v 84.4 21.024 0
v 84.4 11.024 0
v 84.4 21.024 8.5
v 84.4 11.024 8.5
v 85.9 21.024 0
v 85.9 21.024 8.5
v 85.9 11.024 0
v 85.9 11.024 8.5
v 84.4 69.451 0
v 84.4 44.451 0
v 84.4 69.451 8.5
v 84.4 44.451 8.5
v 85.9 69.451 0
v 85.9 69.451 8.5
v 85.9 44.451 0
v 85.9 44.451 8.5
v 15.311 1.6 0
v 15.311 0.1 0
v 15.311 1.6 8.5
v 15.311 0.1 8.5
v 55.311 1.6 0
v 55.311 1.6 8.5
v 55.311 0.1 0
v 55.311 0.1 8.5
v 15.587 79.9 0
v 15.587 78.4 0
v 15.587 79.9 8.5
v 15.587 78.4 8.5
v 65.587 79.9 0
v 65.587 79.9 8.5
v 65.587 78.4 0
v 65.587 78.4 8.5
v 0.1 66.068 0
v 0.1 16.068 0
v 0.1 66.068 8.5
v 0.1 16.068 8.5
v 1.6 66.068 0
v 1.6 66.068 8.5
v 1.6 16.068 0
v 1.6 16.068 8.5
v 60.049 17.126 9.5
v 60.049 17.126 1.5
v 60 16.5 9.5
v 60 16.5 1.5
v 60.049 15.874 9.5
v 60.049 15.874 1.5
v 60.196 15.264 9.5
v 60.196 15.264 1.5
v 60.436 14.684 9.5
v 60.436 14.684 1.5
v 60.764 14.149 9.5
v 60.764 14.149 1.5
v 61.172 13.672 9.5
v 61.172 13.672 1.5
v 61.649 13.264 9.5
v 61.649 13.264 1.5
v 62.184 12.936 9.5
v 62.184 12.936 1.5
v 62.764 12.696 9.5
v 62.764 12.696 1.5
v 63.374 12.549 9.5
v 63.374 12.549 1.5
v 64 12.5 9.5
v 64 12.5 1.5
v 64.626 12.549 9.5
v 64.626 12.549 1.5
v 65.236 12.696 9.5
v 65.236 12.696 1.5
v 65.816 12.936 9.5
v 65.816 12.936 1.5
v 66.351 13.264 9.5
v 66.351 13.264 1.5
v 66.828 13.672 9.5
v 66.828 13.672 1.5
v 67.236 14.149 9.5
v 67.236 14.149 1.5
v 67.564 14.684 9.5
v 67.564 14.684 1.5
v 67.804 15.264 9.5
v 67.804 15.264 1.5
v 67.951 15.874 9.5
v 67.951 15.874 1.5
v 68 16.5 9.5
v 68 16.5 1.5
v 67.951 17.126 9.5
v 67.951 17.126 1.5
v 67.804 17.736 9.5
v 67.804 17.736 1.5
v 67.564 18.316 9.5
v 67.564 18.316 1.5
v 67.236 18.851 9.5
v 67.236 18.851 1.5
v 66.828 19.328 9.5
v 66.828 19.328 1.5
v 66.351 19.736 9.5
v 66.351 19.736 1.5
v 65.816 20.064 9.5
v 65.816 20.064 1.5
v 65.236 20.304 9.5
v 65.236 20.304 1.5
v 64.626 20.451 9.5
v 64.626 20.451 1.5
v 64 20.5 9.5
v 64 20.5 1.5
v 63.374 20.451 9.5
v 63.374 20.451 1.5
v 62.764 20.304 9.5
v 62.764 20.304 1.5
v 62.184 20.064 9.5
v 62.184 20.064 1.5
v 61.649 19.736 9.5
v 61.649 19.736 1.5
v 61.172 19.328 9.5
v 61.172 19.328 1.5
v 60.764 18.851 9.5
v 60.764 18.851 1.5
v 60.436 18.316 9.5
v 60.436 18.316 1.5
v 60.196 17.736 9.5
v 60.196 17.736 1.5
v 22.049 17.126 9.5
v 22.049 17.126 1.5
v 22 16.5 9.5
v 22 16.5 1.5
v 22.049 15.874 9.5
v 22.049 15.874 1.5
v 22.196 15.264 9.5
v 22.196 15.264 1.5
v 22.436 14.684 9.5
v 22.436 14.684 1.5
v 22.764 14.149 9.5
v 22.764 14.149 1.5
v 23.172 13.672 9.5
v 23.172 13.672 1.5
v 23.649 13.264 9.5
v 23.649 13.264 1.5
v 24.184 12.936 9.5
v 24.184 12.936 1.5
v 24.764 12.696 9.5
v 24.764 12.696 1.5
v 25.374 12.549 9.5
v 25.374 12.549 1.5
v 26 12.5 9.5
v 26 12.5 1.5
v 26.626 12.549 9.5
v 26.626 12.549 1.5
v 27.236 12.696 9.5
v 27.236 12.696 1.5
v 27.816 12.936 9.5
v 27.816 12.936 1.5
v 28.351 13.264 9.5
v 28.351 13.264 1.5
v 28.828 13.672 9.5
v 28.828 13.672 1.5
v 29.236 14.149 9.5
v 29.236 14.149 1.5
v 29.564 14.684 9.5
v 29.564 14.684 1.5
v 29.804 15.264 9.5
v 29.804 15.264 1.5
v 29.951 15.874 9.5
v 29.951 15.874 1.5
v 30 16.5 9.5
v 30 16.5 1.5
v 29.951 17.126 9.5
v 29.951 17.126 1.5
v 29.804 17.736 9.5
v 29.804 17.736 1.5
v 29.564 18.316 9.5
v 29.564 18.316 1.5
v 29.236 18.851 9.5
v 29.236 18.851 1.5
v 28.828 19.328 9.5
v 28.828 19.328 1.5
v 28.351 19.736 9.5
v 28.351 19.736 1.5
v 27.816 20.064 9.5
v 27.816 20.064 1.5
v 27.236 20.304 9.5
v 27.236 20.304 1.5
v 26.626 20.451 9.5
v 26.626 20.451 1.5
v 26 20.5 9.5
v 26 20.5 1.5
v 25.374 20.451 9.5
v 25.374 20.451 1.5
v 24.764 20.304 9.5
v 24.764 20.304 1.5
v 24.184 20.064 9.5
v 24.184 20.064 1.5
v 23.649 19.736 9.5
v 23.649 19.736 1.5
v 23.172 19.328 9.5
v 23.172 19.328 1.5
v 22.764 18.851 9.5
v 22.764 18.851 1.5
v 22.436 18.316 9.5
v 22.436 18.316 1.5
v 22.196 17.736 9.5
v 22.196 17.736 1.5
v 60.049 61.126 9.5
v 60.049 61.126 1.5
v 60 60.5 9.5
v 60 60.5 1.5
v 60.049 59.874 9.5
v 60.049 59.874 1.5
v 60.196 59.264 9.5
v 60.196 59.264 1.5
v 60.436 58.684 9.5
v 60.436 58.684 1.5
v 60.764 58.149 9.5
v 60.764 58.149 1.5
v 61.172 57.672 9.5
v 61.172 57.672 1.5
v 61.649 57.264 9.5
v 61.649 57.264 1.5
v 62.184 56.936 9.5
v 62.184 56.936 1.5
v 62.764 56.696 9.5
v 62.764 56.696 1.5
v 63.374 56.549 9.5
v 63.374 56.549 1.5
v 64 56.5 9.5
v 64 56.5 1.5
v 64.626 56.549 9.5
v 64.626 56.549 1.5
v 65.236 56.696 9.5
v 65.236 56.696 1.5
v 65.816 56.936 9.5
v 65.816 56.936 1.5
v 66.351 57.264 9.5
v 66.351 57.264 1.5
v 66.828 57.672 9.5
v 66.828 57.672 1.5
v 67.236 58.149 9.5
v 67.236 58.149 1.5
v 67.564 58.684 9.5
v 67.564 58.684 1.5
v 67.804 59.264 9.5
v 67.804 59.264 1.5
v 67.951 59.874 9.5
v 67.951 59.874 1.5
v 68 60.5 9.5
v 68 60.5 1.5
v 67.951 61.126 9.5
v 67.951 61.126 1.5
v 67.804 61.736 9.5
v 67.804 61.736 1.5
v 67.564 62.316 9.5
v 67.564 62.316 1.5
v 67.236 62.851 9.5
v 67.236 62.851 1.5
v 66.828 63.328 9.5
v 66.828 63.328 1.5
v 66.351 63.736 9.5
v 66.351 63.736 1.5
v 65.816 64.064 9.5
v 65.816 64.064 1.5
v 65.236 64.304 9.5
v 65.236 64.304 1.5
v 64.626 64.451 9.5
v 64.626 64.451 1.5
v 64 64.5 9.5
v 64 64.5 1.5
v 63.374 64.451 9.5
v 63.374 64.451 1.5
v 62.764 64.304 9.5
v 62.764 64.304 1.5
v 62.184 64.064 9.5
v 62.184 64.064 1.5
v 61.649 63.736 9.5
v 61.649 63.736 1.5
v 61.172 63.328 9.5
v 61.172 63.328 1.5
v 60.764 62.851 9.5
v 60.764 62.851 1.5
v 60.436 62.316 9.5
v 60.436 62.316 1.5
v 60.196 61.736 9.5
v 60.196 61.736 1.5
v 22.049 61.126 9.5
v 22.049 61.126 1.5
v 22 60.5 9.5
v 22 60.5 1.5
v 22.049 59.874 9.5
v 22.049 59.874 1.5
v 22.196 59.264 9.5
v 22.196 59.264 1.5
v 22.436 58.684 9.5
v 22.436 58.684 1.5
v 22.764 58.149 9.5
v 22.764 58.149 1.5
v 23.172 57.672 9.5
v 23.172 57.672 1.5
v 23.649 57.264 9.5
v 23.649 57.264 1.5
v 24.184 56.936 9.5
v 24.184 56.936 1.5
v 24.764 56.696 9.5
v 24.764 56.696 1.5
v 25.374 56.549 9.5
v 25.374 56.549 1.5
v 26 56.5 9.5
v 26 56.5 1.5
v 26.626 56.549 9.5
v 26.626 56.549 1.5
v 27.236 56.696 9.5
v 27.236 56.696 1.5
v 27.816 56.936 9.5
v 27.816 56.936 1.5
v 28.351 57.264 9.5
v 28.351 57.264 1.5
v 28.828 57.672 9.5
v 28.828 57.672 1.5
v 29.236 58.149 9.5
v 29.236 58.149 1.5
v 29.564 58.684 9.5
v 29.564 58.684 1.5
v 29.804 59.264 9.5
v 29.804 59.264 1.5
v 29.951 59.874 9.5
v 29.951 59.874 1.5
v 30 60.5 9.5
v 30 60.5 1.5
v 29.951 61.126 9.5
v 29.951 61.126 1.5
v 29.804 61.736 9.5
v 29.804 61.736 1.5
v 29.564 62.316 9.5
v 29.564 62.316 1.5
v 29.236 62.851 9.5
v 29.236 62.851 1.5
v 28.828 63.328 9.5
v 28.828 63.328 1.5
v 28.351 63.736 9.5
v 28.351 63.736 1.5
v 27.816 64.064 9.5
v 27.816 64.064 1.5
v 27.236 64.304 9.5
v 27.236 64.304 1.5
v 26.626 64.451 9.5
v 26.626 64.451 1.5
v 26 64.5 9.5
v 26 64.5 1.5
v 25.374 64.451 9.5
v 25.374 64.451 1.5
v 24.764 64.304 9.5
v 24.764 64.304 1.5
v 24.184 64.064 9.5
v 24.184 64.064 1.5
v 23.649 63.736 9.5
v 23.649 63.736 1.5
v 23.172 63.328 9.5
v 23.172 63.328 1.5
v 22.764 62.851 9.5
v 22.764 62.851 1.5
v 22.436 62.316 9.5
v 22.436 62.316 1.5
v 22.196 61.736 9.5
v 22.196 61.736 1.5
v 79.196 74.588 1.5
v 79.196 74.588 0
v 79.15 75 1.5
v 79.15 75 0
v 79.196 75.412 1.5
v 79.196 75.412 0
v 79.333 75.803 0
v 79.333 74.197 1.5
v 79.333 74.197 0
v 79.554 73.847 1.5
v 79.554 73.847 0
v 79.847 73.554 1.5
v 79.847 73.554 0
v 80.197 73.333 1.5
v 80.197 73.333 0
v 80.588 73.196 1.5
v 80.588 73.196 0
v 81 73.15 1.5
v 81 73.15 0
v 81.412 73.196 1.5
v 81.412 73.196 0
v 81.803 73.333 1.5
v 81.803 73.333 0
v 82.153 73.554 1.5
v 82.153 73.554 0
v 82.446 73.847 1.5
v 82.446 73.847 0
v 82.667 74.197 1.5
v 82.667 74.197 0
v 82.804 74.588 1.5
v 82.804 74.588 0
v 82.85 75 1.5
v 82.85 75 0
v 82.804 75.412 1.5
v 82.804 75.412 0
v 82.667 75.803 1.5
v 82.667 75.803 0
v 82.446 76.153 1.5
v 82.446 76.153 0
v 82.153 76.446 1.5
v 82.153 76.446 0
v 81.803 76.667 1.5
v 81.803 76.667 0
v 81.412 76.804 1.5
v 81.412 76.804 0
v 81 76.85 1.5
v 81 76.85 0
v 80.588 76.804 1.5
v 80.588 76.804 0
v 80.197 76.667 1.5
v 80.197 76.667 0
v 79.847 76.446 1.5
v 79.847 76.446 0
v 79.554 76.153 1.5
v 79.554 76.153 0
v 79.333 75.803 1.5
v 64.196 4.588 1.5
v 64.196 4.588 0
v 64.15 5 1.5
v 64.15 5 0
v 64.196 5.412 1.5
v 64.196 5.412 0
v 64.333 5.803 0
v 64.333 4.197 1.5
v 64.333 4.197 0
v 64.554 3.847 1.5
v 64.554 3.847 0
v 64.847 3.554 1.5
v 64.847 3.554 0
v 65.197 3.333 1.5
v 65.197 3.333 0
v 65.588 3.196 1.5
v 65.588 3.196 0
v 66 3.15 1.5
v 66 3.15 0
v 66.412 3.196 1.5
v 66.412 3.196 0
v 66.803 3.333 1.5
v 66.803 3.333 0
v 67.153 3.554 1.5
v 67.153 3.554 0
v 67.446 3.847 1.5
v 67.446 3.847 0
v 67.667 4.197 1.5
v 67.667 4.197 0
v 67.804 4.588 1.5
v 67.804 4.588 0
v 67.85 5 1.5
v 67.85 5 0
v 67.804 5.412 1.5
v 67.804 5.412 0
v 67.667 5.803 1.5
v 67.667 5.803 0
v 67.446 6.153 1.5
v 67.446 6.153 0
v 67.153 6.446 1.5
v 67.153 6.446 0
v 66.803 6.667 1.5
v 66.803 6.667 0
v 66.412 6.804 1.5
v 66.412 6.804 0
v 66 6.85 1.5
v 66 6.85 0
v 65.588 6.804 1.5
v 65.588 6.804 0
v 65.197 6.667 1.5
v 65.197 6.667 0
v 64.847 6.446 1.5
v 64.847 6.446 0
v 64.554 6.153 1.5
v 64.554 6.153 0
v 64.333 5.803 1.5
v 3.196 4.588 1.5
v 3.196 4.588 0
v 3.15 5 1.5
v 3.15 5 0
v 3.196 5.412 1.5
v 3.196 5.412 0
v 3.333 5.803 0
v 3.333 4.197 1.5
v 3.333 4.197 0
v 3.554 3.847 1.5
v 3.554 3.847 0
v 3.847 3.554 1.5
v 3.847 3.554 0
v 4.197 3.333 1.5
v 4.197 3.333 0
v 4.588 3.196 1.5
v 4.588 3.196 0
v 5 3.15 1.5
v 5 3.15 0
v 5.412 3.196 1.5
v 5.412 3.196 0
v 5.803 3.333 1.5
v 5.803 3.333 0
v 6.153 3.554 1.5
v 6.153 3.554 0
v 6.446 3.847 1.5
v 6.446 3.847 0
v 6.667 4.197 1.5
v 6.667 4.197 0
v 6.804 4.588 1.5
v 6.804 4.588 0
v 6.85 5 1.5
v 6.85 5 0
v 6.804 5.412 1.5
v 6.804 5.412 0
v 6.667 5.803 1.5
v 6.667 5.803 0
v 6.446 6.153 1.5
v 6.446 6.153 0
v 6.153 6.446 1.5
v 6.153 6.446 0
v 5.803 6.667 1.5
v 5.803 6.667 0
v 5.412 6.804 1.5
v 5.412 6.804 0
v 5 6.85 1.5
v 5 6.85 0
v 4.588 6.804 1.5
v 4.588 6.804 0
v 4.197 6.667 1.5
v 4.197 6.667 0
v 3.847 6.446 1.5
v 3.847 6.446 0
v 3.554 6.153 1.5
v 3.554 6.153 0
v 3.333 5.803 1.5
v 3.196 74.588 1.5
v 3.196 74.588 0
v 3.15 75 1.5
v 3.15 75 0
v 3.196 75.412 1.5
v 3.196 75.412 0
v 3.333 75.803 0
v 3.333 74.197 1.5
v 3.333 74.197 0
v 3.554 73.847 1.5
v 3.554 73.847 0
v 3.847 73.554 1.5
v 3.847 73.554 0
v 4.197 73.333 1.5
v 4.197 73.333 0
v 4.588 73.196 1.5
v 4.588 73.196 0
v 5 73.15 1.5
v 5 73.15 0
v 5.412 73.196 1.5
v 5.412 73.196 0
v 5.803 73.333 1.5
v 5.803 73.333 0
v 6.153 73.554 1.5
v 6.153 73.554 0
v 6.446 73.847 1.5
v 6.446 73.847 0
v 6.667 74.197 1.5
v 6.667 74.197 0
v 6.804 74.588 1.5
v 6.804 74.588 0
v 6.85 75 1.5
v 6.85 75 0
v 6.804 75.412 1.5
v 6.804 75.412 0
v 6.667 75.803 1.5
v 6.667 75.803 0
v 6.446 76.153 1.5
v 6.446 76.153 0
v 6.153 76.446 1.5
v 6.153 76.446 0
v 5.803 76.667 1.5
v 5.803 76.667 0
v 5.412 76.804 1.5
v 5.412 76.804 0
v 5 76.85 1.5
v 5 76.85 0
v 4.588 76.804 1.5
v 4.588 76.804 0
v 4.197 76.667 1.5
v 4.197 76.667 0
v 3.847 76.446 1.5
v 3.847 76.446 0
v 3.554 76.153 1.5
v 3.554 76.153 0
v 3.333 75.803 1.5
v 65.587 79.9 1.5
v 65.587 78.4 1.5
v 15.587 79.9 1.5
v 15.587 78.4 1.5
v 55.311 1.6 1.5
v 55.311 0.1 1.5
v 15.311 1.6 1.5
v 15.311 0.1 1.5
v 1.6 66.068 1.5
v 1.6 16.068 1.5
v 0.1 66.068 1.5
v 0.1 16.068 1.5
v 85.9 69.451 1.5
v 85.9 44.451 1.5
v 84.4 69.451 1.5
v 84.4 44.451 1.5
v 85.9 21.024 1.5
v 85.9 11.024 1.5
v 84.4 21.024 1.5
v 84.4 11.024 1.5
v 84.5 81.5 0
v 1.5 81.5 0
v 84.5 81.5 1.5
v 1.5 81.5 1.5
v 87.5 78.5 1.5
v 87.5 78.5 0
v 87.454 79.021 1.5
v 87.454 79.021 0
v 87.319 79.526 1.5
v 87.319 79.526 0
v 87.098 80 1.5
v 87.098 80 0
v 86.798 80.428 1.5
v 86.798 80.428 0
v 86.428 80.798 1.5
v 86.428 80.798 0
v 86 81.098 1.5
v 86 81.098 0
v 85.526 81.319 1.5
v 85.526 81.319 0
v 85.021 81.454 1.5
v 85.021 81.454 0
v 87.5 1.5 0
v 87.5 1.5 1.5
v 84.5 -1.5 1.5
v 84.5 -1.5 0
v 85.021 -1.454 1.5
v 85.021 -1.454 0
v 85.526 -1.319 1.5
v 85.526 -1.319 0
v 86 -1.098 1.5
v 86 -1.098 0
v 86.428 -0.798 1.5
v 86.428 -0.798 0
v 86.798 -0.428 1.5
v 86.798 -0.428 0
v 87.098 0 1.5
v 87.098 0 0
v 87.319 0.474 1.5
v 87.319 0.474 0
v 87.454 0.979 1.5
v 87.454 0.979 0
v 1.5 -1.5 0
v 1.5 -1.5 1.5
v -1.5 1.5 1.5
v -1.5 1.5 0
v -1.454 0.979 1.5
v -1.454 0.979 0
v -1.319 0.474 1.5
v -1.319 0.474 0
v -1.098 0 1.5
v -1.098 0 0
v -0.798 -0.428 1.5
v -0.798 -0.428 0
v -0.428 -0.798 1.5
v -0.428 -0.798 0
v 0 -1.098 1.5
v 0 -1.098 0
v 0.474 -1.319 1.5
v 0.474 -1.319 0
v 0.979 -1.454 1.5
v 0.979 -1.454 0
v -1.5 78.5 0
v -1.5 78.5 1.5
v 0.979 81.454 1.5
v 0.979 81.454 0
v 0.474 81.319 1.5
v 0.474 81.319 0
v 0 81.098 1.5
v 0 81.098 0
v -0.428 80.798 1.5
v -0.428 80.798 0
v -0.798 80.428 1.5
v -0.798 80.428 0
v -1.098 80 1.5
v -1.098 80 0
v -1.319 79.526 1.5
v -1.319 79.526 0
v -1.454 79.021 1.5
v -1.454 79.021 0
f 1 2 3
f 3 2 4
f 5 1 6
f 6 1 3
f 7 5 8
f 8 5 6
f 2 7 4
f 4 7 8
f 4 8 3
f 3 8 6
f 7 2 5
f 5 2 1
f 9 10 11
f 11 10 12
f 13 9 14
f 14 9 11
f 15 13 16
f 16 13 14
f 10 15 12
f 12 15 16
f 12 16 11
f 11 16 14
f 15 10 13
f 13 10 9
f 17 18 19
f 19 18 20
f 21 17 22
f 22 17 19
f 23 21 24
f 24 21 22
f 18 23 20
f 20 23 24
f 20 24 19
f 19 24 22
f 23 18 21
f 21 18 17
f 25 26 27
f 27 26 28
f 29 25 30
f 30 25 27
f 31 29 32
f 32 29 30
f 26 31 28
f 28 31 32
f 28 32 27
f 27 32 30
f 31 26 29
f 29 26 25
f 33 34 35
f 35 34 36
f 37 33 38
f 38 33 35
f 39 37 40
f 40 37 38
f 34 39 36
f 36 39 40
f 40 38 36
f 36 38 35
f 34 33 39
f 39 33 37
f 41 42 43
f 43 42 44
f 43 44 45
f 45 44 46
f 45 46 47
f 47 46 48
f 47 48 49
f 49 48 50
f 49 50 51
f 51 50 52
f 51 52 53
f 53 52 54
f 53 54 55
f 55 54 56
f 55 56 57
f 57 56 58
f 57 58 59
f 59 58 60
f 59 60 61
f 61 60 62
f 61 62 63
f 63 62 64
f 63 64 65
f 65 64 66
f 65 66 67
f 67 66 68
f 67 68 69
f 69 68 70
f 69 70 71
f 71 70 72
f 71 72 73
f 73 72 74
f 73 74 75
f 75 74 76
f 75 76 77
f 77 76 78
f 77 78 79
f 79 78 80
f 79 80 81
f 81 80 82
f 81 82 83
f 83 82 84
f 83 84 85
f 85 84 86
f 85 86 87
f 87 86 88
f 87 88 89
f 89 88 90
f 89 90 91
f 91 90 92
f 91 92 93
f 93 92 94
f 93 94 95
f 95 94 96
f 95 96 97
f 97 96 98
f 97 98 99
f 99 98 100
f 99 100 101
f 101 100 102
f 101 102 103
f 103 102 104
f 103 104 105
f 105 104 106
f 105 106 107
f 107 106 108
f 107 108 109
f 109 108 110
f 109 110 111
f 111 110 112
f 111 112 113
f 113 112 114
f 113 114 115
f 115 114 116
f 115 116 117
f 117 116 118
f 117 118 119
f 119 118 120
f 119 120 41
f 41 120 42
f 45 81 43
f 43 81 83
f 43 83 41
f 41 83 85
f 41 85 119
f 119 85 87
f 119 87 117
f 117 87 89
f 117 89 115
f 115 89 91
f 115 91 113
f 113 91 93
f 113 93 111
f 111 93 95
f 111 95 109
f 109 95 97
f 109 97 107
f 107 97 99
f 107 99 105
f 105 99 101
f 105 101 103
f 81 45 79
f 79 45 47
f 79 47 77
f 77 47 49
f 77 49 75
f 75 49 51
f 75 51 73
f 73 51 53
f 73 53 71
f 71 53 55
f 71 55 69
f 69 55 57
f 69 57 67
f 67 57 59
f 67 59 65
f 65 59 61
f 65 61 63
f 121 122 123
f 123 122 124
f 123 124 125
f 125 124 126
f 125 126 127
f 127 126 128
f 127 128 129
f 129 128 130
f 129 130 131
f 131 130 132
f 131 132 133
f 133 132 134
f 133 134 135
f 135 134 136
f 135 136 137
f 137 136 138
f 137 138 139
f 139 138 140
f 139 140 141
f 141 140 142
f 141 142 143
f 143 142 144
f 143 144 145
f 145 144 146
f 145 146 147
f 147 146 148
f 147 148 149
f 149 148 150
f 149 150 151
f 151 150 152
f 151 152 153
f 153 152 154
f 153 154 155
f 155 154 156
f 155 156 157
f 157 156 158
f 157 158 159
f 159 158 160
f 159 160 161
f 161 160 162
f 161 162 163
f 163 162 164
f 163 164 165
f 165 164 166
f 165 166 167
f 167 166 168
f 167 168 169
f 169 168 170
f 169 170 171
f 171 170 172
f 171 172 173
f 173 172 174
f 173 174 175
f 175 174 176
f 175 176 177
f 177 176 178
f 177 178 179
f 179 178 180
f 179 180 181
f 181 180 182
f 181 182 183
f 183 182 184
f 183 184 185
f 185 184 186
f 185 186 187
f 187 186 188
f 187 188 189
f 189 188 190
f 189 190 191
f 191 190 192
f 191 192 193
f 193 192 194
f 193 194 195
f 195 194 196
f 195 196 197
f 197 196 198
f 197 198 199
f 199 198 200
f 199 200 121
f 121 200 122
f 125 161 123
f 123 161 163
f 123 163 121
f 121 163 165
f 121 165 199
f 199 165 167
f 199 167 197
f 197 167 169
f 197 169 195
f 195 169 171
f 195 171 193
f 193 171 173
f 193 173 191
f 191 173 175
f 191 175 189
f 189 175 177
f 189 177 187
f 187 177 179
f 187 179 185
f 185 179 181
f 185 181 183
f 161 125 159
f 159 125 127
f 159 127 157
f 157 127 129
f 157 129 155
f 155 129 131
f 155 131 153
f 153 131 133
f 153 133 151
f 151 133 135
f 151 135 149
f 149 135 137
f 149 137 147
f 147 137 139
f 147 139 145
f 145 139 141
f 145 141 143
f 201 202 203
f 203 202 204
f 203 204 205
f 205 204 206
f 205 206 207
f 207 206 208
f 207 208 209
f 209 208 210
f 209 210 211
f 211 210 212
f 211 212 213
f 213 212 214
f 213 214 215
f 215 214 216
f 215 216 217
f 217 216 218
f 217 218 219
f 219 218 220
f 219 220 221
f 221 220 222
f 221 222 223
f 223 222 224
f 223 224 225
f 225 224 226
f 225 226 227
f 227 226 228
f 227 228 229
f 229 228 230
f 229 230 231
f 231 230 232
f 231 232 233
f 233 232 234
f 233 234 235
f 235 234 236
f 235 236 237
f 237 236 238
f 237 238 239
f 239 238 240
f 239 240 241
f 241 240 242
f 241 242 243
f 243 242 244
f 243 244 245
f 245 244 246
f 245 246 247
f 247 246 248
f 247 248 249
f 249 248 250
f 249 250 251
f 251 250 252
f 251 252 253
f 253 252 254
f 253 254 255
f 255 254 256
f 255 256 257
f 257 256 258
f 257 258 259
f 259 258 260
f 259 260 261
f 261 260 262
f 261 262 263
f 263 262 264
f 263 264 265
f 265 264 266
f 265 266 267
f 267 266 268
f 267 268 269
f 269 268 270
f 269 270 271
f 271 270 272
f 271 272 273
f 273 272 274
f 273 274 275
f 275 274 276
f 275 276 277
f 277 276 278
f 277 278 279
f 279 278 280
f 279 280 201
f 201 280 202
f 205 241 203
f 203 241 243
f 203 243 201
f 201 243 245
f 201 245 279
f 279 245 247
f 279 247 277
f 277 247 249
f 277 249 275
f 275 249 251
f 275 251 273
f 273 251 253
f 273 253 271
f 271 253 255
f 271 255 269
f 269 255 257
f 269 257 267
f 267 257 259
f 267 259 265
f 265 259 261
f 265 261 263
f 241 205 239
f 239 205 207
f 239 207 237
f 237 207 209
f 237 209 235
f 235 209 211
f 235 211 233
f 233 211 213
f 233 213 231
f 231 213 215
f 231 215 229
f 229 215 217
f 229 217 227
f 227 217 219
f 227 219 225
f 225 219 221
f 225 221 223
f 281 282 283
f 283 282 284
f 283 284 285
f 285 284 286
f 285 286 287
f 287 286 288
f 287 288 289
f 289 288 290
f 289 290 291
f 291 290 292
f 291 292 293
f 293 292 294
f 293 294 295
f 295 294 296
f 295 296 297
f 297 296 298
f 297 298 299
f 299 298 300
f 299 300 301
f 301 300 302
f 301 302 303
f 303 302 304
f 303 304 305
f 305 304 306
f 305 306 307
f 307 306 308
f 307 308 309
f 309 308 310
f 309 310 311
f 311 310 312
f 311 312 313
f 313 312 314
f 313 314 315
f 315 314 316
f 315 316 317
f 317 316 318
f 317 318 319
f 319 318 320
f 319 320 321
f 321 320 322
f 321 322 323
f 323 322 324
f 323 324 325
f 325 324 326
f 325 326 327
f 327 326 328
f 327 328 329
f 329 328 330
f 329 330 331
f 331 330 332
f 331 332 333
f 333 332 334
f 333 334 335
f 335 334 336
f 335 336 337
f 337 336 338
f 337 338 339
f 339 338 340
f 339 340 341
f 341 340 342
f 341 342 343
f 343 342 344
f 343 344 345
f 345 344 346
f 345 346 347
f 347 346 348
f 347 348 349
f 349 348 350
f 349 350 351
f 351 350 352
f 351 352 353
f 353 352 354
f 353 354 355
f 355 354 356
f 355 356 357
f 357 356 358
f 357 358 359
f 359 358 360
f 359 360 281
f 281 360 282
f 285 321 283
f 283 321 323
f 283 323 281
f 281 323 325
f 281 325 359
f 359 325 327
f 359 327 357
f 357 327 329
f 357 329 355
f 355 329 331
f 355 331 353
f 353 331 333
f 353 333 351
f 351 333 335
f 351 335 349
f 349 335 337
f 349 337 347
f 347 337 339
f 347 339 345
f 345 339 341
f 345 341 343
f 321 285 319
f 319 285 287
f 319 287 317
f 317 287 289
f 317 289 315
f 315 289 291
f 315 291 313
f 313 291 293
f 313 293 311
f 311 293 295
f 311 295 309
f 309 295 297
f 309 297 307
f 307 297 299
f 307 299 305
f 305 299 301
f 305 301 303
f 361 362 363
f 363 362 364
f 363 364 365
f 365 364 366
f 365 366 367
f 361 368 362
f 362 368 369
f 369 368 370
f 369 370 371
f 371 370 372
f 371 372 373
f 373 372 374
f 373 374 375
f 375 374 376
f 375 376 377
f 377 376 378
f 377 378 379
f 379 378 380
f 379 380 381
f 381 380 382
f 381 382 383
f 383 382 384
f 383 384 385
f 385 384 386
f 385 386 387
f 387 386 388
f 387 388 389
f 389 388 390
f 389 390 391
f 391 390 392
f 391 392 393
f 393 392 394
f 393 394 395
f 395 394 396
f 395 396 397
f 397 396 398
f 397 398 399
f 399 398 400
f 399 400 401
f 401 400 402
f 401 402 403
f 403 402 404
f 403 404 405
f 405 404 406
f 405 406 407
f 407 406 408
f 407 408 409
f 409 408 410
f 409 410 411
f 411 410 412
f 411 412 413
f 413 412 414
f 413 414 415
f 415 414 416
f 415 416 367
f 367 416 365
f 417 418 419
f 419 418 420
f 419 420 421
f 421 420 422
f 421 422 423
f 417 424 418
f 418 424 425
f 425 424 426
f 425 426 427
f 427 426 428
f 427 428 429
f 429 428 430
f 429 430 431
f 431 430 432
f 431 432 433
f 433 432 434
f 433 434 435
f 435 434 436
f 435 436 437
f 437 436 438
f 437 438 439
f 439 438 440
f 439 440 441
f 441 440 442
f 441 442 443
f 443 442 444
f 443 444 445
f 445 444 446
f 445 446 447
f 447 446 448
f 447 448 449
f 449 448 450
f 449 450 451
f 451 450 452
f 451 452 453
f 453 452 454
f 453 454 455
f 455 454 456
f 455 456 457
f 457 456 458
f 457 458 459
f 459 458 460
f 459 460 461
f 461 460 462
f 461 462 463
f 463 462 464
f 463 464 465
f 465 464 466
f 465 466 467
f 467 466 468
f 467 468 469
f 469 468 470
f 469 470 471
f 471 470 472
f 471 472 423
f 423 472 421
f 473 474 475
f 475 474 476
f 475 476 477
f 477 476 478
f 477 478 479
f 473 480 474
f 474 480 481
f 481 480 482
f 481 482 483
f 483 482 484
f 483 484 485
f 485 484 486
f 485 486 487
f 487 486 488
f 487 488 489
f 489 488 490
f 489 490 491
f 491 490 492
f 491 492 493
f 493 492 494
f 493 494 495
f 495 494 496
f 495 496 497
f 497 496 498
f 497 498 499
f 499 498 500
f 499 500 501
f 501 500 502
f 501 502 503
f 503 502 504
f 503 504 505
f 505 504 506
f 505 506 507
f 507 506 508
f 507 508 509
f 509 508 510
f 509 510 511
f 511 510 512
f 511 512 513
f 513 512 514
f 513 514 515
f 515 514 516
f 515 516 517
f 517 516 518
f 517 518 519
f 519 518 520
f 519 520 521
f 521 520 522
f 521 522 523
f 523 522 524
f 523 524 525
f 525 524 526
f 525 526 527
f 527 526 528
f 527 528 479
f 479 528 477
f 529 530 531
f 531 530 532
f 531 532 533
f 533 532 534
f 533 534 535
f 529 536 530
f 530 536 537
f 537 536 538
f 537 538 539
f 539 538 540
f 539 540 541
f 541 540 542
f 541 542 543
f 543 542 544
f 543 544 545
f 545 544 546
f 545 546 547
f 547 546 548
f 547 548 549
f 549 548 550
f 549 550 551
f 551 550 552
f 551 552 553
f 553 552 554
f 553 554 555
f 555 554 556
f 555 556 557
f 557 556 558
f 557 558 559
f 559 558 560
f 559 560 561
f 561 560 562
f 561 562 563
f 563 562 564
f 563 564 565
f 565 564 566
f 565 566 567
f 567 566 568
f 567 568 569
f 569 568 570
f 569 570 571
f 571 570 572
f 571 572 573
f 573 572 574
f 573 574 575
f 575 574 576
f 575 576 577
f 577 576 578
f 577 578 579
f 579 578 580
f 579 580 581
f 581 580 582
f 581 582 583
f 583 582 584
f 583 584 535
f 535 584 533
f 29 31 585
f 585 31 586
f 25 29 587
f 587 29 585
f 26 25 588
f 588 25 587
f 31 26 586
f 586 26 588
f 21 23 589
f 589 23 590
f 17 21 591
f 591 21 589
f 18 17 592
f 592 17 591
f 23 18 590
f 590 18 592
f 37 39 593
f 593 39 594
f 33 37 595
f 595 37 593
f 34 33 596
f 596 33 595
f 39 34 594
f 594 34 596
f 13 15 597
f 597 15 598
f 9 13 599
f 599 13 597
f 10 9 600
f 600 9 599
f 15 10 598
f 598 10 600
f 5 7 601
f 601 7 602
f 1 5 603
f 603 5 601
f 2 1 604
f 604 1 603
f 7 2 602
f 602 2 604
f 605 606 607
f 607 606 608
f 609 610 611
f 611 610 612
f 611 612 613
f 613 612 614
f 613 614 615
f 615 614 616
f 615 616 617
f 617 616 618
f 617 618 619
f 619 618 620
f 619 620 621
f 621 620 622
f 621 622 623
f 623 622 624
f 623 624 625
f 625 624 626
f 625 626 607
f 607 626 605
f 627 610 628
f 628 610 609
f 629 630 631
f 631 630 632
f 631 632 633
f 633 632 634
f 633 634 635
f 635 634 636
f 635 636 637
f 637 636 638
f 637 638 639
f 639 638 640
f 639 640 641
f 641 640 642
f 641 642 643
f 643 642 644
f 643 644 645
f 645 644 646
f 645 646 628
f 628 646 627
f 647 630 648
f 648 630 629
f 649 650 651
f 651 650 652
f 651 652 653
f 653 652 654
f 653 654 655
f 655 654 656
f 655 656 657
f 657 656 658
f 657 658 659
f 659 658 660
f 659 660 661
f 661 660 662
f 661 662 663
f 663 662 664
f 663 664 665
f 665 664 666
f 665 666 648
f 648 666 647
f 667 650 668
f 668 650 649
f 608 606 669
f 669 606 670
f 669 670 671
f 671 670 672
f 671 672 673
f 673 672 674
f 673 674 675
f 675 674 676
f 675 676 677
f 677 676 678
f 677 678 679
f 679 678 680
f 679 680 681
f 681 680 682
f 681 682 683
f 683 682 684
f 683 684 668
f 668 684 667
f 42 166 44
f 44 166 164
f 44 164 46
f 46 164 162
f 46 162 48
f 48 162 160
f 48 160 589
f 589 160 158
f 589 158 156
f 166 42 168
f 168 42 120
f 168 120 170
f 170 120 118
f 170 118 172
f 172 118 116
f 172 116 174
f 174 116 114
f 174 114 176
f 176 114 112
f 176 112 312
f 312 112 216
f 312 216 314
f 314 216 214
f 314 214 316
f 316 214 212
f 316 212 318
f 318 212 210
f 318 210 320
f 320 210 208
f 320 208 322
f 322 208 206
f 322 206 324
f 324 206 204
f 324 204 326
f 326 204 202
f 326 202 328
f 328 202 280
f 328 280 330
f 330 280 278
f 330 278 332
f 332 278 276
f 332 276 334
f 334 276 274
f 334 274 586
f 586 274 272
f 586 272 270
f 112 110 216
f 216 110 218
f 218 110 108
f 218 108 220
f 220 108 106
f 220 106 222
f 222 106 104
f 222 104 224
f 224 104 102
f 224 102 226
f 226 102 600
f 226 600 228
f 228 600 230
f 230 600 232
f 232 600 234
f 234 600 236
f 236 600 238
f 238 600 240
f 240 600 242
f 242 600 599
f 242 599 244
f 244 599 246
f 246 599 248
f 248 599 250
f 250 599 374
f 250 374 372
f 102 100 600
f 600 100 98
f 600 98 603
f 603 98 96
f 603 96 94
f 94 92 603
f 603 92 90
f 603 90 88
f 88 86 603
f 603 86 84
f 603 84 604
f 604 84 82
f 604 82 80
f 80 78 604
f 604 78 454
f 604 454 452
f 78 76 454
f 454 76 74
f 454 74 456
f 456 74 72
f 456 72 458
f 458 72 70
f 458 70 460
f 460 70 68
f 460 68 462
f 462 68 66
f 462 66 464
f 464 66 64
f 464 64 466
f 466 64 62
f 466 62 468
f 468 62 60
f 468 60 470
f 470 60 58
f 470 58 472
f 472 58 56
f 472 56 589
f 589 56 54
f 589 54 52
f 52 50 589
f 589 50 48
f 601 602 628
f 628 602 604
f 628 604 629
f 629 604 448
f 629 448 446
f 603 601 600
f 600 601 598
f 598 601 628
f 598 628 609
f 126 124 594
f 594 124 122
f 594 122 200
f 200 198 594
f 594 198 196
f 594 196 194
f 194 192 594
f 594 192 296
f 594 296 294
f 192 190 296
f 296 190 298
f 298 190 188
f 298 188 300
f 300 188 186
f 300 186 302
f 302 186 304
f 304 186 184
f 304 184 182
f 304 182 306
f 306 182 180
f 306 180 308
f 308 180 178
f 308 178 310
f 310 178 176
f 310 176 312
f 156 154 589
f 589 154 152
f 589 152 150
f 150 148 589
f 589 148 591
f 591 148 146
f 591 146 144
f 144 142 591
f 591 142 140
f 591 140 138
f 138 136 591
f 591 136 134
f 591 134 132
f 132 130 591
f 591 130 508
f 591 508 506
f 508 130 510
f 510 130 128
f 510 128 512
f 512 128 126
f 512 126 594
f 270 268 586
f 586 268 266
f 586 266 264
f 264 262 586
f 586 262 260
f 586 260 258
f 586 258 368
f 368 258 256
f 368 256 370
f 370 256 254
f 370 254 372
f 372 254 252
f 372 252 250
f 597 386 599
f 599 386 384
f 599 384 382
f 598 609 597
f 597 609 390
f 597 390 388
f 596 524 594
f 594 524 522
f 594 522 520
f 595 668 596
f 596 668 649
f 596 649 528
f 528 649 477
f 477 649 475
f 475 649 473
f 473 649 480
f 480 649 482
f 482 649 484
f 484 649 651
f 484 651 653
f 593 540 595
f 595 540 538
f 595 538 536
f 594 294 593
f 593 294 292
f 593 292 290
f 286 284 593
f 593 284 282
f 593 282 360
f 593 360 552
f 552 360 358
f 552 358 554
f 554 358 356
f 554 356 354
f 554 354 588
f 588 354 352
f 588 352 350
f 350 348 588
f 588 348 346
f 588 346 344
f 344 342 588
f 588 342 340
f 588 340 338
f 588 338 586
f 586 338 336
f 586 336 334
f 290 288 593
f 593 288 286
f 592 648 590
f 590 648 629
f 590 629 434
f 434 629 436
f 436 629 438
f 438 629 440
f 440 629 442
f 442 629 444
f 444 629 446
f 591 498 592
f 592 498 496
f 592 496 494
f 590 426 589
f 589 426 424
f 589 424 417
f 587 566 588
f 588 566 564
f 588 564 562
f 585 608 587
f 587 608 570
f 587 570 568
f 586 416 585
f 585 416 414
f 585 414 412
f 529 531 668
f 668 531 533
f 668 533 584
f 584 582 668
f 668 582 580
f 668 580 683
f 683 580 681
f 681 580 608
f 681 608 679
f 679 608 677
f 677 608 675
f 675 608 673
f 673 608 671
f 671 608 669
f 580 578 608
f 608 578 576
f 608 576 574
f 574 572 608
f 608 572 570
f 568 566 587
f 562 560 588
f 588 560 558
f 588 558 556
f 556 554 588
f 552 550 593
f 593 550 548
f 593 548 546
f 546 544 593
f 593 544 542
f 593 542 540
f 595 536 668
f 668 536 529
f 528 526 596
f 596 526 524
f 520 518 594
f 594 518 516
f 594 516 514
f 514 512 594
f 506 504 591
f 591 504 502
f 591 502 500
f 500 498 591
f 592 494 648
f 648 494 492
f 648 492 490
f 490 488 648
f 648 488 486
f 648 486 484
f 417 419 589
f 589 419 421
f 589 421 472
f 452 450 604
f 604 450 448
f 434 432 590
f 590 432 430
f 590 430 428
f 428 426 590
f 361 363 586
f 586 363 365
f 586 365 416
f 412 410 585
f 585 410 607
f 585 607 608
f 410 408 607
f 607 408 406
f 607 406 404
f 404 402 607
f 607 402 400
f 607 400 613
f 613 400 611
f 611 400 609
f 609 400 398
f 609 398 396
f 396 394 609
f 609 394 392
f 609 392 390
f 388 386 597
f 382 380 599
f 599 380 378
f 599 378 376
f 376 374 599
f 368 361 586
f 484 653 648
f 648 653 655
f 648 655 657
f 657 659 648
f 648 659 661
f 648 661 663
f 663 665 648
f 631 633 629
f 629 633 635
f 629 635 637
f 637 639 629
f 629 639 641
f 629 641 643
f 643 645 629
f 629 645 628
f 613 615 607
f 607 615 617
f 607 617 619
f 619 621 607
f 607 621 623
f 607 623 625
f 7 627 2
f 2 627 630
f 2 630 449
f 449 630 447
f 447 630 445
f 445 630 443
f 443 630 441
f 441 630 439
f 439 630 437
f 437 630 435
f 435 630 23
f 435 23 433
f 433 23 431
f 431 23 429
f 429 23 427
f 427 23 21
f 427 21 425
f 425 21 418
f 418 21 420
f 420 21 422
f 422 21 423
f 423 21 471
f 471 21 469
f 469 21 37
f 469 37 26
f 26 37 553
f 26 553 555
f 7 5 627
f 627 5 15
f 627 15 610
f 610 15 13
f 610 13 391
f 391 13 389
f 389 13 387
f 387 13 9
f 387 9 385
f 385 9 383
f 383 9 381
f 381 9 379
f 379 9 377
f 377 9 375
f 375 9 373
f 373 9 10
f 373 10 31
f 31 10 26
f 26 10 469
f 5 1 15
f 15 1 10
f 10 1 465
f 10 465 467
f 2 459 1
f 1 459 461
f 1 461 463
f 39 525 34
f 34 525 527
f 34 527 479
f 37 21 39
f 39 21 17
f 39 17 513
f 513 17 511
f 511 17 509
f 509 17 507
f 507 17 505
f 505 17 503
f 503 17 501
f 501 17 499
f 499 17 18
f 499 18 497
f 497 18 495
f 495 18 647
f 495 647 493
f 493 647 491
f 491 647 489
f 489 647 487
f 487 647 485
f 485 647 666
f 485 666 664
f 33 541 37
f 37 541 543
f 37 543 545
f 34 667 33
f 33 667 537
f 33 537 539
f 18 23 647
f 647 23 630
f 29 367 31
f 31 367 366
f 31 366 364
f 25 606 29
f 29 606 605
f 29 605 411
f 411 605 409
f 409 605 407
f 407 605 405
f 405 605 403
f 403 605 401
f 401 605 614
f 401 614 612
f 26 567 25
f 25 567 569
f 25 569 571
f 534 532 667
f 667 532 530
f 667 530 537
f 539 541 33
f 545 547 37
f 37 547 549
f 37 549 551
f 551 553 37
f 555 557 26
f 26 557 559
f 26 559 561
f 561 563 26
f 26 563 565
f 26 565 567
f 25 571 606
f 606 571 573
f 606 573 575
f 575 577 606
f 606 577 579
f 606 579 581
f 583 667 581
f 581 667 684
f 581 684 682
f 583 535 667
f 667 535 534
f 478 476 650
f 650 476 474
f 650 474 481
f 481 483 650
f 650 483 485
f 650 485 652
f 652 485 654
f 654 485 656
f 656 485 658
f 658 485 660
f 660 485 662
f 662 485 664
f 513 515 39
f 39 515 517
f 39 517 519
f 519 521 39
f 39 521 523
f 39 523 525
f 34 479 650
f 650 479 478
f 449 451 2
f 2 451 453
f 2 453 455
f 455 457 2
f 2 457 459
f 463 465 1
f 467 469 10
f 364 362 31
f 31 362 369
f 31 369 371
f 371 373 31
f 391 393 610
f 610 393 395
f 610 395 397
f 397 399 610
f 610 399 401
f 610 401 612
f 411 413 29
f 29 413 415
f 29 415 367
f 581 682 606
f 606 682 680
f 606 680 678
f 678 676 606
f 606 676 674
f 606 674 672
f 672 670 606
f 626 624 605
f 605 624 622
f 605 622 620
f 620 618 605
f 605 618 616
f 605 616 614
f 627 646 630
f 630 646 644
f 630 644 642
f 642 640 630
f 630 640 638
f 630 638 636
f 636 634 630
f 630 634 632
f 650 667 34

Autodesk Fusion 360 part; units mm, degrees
sketch "Sketch5" plane through (0, 0, 0) normal (0, 0, 1) x (1, 0, 0)
  line L0 (1.5, 0) -> (84.5, 0) construction
  line L1 (86, 1.5) -> (86, 78.5) construction
  line L2 (84.5, 80) -> (1.5, 80) construction
  line L3 (0, 78.5) -> (0, 1.5) construction
  arc A0 (1.5, 80) -> (0, 78.5) centre (1.5, 78.5) ccw construction
  arc A1 (86, 78.5) -> (84.5, 80) centre (84.5, 78.5) ccw construction
  arc A2 (84.5, 0) -> (86, 1.5) centre (84.5, 1.5) ccw construction
  arc A3 (0, 1.5) -> (1.5, 0) centre (1.5, 1.5) ccw construction
  circle A4 centre (81, 75) radius 1.85
  circle A5 centre (66, 5) radius 1.85
  circle A6 centre (5, 5) radius 1.85
  circle A7 centre (5, 75) radius 1.85
  line L4 (66, 5) -> (66, 0) construction
  line L5 (5, 5) -> (5, 0) construction
  line L6 (5, 5) -> (0, 5) construction
  line L7 (5, 75) -> (5, 80) construction
  line L8 (5, 75) -> (0, 75) construction
  line L9 (81, 75) -> (86, 75) construction
  line L10 (81, 75) -> (81, 80) construction
  line L11 (66, 5) -> (86, 5) construction
  line L12 (15.5875, 79.9) -> (65.5875, 79.9)
  line L13 (65.5875, 79.9) -> (65.5875, 78.4)
  line L14 (65.5875, 78.4) -> (15.5875, 78.4)
  line L15 (15.5875, 78.4) -> (15.5875, 79.9)
  line L16 (15.3114, 1.6) -> (55.3114, 1.6)
  line L17 (55.3114, 1.6) -> (55.3114, 0.1)
  line L18 (55.3114, 0.1) -> (15.3114, 0.1)
  line L19 (15.3114, 0.1) -> (15.3114, 1.6)
  line L20 (84.4, 69.451) -> (85.9, 69.451)
  line L21 (85.9, 69.451) -> (85.9, 44.451)
  line L22 (85.9, 44.451) -> (84.4, 44.451)
  line L23 (84.4, 44.451) -> (84.4, 69.451)
  line L24 (0.1, 66.068) -> (1.6, 66.068)
  line L25 (1.6, 66.068) -> (1.6, 16.068)
  line L26 (1.6, 16.068) -> (0.1, 16.068)
  line L27 (0.1, 16.068) -> (0.1, 66.068)
  line L28 (0.5, 70) -> (85.5, 70) construction
  line L29 (85.5, 70) -> (85.5, 10) construction
  line L30 (85.5, 10) -> (0.5, 10) construction
  line L31 (0.5, 10) -> (0.5, 70) construction
  line L32 (9.3353, 80) -> (9.3353, 70) construction
  line L33 (9.3353, 10) -> (9.3353, 0) construction
  line L34 (85.5, 36.8145) -> (86, 36.8145) construction
  line L35 (0.5, 33.1865) -> (0, 33.1865) construction
  line L36 (26, 60.5) -> (64, 60.5) construction
  line L37 (64, 60.5) -> (64, 16.5) construction
  line L38 (64, 16.5) -> (26, 16.5) construction
  line L39 (26, 16.5) -> (26, 60.5) construction
  line L40 (64, 53.3314) -> (85.5, 53.3314) construction
  line L41 (-1.5, 78.5) -> (-1.5, 1.5)
  arc A8 (-1.5, 1.5) -> (1.5, -1.5) centre (1.5, 1.5) ccw
  line L42 (1.5, -1.5) -> (84.5, -1.5)
  arc A9 (84.5, -1.5) -> (87.5, 1.5) centre (84.5, 1.5) ccw
  line L43 (87.5, 1.5) -> (87.5, 78.5)
  arc A10 (87.5, 78.5) -> (84.5, 81.5) centre (84.5, 78.5) ccw
  line L44 (84.5, 81.5) -> (1.5, 81.5)
  arc A11 (1.5, 81.5) -> (-1.5, 78.5) centre (1.5, 78.5) ccw
  circle A12 centre (26, 60.5) radius 4
  circle A13 centre (64, 60.5) radius 4
  circle A14 centre (64, 16.5) radius 4
  circle A15 centre (26, 16.5) radius 4
  line L45 (84.4, 21.0236) -> (85.9, 21.0236)
  line L46 (85.9, 21.0236) -> (85.9, 11.0236)
  line L47 (85.9, 11.0236) -> (84.4, 11.0236)
  line L48 (84.4, 11.0236) -> (84.4, 21.0236)
  point P0 (86, 0)
  point P1 (0, 80)
  dimension "d11" = 86
  dimension "d12" = 80
  dimension "d13" = 1.5
  dimension "d14" = 1.5
  dimension "d15" = 1.5
  dimension "d16" = 1.5
  dimension "d17" = 3.7
  dimension "d18" = 5
  dimension "d19" = 20
  dimension "d20" = 50
  dimension "d21" = 1.5
  dimension "d22" = 40
  dimension "d23" = 1.5
  dimension "d24" = 1.5
  dimension "d25" = 25
  dimension "d26" = 1.5
  dimension "d27" = 50
  dimension "d28" = 0.1
  dimension "d29" = 0.1
  dimension "d30" = 0.1
  dimension "d31" = 0.1
  dimension "d32" = 85
  dimension "d33" = 60
  dimension "d34" = 38
  dimension "d35" = 44
  dimension "d36" = 21.5
  dimension "d37" = 6.5
  dimension "d38" = 1.5
  dimension "d39" = 8
  dimension "d42" = 1.5
  dimension "d43" = 10
  dimension "d44" = 0.1
extrude "Extrude3" add sketch "Sketch5" along normal blind 8.5 contours L12 L13 L14 L15 | L16 L17 L18 L19 | L20 L21 L22 L23 | L24 L25 L26 L27 | L45 L46 L47 L48 makes body 1 at (85.9, 17.6902, 2.8333) makes body 2 at (84.4, 52.7844, 2.8333) makes body 3 at (28.6448, 1.6, 2.8333) makes body 4 at (48.9208, 78.4, 2.8333) makes body 5 at (1.6, 49.4013, 2.8333)
extrude "Extrude2" add sketch "Sketch5" along normal blind 1.5 separate body makes body 6
extrude "Extrude4" add sketch "Sketch5" along normal blind 9.5 contours A12 | A13 | A14 | A15 bodies 6
